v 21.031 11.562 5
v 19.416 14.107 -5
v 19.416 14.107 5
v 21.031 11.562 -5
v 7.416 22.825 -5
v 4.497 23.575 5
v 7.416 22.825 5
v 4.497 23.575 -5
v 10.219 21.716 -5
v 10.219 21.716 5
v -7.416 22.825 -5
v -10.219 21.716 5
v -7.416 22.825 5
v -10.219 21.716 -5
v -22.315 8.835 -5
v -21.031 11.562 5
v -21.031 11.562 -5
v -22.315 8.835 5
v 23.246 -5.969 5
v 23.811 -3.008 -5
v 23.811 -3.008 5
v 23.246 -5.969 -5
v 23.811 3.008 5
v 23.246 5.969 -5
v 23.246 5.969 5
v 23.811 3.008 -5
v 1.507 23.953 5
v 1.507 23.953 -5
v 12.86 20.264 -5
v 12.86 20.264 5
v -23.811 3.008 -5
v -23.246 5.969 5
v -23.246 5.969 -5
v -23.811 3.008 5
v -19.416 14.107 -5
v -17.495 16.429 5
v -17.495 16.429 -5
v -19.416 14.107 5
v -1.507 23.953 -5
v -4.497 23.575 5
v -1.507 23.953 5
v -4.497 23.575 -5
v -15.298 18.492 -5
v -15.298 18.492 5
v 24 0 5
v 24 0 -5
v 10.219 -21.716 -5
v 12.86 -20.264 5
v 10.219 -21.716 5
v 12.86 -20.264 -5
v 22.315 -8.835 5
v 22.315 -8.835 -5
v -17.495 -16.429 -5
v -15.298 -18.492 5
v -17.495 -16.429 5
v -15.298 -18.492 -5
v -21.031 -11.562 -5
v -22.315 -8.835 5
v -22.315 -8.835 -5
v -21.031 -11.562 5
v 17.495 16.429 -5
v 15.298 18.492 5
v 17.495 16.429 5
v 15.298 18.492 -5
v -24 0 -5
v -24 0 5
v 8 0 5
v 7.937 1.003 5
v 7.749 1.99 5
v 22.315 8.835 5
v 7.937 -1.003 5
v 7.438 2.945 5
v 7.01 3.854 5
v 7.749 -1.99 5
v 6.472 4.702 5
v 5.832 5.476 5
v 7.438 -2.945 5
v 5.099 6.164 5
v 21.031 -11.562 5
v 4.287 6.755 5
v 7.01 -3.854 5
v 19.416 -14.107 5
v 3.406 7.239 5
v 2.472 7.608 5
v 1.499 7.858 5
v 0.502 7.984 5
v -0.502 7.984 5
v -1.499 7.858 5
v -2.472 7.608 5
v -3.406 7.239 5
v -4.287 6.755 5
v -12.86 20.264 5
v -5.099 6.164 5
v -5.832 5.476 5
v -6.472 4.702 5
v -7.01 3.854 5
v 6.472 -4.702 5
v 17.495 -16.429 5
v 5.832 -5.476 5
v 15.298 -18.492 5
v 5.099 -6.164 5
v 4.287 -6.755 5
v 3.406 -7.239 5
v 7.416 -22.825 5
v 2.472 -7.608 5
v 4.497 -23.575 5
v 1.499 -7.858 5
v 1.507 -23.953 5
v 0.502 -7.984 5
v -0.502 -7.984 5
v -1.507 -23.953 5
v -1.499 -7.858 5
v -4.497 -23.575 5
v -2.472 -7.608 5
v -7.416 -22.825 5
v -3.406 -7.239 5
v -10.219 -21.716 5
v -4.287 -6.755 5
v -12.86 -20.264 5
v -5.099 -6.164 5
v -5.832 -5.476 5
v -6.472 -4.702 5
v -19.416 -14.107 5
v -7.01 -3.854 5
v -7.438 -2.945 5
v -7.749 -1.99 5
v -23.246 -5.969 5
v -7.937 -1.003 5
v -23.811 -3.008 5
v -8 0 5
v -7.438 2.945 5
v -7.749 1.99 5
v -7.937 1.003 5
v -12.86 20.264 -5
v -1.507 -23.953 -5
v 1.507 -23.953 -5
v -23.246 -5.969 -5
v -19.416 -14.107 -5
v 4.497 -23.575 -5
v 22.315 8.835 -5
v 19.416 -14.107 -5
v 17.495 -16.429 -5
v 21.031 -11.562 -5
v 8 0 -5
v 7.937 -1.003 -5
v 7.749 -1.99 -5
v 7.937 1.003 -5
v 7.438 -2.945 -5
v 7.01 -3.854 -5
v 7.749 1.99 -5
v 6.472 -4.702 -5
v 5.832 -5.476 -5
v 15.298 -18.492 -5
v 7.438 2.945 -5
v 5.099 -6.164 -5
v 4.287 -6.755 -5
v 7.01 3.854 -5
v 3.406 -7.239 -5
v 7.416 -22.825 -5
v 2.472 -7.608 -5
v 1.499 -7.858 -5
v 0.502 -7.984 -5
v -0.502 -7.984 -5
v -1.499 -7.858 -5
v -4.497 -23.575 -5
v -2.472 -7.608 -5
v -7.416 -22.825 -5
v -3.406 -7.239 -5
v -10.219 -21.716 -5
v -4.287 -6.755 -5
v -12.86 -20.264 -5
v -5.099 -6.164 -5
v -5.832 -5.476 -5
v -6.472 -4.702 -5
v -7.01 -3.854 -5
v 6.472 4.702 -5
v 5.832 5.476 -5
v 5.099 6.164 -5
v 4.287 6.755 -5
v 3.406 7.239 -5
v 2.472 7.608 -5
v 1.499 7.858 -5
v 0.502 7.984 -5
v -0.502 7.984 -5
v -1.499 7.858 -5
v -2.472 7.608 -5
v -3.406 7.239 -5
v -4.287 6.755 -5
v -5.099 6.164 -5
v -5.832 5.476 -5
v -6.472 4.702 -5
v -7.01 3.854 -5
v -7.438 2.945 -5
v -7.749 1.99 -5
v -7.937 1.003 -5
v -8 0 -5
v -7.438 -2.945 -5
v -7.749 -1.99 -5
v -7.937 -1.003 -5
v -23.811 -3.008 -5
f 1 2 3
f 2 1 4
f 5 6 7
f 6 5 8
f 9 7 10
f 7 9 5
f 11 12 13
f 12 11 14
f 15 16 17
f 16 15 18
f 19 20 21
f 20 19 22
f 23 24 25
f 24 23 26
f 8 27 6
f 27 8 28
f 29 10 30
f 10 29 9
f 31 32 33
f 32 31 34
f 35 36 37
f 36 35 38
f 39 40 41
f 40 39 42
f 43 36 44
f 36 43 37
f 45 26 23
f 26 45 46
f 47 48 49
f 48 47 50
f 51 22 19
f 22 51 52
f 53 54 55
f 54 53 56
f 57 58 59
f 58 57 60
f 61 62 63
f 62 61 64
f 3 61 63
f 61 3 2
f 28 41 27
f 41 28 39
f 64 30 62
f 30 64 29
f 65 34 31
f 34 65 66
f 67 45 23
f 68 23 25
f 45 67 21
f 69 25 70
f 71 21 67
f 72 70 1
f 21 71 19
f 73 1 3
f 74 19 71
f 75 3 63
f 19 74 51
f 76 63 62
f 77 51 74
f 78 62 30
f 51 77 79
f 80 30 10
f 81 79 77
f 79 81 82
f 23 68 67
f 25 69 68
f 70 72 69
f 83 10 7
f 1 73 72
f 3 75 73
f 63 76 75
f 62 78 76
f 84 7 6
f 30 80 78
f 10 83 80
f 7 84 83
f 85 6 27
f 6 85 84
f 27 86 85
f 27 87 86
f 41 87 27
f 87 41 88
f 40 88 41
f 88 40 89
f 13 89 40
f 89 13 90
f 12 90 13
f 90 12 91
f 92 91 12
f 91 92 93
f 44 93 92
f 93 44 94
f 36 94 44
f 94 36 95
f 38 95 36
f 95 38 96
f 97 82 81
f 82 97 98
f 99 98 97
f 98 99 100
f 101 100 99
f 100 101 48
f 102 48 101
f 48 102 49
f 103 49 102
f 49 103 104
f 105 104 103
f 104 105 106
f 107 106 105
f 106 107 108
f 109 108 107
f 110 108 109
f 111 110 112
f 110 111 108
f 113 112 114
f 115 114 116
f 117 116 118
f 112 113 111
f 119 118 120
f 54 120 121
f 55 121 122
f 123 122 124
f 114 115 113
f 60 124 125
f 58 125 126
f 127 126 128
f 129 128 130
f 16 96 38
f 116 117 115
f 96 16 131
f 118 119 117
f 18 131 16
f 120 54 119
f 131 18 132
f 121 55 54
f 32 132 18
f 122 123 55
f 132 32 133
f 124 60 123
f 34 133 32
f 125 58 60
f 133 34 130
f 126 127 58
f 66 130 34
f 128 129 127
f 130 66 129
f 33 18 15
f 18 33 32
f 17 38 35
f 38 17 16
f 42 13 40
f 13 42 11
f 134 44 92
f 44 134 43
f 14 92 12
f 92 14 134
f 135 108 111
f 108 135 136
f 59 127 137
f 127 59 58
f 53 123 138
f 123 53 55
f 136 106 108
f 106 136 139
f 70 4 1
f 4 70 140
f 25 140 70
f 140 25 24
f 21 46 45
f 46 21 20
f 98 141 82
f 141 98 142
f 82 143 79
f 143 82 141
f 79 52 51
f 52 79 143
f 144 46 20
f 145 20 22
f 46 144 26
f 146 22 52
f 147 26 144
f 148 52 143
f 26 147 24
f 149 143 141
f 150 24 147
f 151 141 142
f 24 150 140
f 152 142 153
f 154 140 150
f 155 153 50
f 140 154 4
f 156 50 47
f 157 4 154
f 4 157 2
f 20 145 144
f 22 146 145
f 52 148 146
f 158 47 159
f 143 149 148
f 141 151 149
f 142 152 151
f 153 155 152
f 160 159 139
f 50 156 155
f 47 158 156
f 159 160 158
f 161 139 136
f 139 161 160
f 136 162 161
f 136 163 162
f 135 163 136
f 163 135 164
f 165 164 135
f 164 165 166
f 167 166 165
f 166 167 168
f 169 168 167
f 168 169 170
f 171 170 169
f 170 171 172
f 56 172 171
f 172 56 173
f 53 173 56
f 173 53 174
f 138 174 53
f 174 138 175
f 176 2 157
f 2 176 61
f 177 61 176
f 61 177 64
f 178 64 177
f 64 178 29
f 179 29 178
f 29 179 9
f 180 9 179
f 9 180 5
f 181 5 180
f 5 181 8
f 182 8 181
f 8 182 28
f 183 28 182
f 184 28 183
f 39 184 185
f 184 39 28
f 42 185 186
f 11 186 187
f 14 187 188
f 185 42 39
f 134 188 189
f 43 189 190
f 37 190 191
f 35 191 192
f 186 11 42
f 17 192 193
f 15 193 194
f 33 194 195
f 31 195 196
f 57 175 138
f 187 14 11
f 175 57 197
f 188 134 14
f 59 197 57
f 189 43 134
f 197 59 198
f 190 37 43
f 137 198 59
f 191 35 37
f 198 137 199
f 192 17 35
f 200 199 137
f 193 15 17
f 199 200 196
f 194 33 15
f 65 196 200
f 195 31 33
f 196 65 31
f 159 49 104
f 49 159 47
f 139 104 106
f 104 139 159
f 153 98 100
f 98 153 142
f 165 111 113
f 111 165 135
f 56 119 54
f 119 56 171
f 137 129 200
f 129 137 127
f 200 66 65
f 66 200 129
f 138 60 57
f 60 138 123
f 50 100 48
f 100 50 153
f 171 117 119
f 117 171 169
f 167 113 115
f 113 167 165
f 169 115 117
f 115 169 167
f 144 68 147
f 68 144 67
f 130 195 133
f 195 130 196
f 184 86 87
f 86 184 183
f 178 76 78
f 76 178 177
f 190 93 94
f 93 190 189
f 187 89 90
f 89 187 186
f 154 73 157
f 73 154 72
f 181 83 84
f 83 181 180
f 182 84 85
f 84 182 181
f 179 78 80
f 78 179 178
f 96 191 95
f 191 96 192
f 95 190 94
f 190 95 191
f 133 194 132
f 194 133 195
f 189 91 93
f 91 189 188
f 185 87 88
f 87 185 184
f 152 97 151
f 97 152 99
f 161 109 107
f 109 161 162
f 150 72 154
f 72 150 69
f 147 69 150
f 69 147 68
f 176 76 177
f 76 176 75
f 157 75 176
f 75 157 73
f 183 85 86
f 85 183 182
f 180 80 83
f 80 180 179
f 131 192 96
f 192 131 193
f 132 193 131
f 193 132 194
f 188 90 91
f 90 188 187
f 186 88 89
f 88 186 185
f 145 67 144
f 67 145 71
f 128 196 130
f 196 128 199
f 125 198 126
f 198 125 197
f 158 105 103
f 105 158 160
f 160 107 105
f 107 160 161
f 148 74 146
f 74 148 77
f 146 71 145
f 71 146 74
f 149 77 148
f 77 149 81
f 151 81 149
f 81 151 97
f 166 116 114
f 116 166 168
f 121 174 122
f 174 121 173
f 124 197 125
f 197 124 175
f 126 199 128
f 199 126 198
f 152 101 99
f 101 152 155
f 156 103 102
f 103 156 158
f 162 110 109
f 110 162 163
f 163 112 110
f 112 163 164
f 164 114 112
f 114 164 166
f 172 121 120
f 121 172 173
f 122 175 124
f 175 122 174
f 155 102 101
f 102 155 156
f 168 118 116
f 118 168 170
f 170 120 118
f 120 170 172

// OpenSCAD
$fn = 50;


difference() {
	union() {
		translate(v = [0, 0, -5.0000000000]) {
			cylinder(h = 10, r = 24.0000000000);
		}
	}
	union() {
		translate(v = [0, 0, -100.0000000000]) {
			cylinder(h = 200, r = 8);
		}
	}
}
